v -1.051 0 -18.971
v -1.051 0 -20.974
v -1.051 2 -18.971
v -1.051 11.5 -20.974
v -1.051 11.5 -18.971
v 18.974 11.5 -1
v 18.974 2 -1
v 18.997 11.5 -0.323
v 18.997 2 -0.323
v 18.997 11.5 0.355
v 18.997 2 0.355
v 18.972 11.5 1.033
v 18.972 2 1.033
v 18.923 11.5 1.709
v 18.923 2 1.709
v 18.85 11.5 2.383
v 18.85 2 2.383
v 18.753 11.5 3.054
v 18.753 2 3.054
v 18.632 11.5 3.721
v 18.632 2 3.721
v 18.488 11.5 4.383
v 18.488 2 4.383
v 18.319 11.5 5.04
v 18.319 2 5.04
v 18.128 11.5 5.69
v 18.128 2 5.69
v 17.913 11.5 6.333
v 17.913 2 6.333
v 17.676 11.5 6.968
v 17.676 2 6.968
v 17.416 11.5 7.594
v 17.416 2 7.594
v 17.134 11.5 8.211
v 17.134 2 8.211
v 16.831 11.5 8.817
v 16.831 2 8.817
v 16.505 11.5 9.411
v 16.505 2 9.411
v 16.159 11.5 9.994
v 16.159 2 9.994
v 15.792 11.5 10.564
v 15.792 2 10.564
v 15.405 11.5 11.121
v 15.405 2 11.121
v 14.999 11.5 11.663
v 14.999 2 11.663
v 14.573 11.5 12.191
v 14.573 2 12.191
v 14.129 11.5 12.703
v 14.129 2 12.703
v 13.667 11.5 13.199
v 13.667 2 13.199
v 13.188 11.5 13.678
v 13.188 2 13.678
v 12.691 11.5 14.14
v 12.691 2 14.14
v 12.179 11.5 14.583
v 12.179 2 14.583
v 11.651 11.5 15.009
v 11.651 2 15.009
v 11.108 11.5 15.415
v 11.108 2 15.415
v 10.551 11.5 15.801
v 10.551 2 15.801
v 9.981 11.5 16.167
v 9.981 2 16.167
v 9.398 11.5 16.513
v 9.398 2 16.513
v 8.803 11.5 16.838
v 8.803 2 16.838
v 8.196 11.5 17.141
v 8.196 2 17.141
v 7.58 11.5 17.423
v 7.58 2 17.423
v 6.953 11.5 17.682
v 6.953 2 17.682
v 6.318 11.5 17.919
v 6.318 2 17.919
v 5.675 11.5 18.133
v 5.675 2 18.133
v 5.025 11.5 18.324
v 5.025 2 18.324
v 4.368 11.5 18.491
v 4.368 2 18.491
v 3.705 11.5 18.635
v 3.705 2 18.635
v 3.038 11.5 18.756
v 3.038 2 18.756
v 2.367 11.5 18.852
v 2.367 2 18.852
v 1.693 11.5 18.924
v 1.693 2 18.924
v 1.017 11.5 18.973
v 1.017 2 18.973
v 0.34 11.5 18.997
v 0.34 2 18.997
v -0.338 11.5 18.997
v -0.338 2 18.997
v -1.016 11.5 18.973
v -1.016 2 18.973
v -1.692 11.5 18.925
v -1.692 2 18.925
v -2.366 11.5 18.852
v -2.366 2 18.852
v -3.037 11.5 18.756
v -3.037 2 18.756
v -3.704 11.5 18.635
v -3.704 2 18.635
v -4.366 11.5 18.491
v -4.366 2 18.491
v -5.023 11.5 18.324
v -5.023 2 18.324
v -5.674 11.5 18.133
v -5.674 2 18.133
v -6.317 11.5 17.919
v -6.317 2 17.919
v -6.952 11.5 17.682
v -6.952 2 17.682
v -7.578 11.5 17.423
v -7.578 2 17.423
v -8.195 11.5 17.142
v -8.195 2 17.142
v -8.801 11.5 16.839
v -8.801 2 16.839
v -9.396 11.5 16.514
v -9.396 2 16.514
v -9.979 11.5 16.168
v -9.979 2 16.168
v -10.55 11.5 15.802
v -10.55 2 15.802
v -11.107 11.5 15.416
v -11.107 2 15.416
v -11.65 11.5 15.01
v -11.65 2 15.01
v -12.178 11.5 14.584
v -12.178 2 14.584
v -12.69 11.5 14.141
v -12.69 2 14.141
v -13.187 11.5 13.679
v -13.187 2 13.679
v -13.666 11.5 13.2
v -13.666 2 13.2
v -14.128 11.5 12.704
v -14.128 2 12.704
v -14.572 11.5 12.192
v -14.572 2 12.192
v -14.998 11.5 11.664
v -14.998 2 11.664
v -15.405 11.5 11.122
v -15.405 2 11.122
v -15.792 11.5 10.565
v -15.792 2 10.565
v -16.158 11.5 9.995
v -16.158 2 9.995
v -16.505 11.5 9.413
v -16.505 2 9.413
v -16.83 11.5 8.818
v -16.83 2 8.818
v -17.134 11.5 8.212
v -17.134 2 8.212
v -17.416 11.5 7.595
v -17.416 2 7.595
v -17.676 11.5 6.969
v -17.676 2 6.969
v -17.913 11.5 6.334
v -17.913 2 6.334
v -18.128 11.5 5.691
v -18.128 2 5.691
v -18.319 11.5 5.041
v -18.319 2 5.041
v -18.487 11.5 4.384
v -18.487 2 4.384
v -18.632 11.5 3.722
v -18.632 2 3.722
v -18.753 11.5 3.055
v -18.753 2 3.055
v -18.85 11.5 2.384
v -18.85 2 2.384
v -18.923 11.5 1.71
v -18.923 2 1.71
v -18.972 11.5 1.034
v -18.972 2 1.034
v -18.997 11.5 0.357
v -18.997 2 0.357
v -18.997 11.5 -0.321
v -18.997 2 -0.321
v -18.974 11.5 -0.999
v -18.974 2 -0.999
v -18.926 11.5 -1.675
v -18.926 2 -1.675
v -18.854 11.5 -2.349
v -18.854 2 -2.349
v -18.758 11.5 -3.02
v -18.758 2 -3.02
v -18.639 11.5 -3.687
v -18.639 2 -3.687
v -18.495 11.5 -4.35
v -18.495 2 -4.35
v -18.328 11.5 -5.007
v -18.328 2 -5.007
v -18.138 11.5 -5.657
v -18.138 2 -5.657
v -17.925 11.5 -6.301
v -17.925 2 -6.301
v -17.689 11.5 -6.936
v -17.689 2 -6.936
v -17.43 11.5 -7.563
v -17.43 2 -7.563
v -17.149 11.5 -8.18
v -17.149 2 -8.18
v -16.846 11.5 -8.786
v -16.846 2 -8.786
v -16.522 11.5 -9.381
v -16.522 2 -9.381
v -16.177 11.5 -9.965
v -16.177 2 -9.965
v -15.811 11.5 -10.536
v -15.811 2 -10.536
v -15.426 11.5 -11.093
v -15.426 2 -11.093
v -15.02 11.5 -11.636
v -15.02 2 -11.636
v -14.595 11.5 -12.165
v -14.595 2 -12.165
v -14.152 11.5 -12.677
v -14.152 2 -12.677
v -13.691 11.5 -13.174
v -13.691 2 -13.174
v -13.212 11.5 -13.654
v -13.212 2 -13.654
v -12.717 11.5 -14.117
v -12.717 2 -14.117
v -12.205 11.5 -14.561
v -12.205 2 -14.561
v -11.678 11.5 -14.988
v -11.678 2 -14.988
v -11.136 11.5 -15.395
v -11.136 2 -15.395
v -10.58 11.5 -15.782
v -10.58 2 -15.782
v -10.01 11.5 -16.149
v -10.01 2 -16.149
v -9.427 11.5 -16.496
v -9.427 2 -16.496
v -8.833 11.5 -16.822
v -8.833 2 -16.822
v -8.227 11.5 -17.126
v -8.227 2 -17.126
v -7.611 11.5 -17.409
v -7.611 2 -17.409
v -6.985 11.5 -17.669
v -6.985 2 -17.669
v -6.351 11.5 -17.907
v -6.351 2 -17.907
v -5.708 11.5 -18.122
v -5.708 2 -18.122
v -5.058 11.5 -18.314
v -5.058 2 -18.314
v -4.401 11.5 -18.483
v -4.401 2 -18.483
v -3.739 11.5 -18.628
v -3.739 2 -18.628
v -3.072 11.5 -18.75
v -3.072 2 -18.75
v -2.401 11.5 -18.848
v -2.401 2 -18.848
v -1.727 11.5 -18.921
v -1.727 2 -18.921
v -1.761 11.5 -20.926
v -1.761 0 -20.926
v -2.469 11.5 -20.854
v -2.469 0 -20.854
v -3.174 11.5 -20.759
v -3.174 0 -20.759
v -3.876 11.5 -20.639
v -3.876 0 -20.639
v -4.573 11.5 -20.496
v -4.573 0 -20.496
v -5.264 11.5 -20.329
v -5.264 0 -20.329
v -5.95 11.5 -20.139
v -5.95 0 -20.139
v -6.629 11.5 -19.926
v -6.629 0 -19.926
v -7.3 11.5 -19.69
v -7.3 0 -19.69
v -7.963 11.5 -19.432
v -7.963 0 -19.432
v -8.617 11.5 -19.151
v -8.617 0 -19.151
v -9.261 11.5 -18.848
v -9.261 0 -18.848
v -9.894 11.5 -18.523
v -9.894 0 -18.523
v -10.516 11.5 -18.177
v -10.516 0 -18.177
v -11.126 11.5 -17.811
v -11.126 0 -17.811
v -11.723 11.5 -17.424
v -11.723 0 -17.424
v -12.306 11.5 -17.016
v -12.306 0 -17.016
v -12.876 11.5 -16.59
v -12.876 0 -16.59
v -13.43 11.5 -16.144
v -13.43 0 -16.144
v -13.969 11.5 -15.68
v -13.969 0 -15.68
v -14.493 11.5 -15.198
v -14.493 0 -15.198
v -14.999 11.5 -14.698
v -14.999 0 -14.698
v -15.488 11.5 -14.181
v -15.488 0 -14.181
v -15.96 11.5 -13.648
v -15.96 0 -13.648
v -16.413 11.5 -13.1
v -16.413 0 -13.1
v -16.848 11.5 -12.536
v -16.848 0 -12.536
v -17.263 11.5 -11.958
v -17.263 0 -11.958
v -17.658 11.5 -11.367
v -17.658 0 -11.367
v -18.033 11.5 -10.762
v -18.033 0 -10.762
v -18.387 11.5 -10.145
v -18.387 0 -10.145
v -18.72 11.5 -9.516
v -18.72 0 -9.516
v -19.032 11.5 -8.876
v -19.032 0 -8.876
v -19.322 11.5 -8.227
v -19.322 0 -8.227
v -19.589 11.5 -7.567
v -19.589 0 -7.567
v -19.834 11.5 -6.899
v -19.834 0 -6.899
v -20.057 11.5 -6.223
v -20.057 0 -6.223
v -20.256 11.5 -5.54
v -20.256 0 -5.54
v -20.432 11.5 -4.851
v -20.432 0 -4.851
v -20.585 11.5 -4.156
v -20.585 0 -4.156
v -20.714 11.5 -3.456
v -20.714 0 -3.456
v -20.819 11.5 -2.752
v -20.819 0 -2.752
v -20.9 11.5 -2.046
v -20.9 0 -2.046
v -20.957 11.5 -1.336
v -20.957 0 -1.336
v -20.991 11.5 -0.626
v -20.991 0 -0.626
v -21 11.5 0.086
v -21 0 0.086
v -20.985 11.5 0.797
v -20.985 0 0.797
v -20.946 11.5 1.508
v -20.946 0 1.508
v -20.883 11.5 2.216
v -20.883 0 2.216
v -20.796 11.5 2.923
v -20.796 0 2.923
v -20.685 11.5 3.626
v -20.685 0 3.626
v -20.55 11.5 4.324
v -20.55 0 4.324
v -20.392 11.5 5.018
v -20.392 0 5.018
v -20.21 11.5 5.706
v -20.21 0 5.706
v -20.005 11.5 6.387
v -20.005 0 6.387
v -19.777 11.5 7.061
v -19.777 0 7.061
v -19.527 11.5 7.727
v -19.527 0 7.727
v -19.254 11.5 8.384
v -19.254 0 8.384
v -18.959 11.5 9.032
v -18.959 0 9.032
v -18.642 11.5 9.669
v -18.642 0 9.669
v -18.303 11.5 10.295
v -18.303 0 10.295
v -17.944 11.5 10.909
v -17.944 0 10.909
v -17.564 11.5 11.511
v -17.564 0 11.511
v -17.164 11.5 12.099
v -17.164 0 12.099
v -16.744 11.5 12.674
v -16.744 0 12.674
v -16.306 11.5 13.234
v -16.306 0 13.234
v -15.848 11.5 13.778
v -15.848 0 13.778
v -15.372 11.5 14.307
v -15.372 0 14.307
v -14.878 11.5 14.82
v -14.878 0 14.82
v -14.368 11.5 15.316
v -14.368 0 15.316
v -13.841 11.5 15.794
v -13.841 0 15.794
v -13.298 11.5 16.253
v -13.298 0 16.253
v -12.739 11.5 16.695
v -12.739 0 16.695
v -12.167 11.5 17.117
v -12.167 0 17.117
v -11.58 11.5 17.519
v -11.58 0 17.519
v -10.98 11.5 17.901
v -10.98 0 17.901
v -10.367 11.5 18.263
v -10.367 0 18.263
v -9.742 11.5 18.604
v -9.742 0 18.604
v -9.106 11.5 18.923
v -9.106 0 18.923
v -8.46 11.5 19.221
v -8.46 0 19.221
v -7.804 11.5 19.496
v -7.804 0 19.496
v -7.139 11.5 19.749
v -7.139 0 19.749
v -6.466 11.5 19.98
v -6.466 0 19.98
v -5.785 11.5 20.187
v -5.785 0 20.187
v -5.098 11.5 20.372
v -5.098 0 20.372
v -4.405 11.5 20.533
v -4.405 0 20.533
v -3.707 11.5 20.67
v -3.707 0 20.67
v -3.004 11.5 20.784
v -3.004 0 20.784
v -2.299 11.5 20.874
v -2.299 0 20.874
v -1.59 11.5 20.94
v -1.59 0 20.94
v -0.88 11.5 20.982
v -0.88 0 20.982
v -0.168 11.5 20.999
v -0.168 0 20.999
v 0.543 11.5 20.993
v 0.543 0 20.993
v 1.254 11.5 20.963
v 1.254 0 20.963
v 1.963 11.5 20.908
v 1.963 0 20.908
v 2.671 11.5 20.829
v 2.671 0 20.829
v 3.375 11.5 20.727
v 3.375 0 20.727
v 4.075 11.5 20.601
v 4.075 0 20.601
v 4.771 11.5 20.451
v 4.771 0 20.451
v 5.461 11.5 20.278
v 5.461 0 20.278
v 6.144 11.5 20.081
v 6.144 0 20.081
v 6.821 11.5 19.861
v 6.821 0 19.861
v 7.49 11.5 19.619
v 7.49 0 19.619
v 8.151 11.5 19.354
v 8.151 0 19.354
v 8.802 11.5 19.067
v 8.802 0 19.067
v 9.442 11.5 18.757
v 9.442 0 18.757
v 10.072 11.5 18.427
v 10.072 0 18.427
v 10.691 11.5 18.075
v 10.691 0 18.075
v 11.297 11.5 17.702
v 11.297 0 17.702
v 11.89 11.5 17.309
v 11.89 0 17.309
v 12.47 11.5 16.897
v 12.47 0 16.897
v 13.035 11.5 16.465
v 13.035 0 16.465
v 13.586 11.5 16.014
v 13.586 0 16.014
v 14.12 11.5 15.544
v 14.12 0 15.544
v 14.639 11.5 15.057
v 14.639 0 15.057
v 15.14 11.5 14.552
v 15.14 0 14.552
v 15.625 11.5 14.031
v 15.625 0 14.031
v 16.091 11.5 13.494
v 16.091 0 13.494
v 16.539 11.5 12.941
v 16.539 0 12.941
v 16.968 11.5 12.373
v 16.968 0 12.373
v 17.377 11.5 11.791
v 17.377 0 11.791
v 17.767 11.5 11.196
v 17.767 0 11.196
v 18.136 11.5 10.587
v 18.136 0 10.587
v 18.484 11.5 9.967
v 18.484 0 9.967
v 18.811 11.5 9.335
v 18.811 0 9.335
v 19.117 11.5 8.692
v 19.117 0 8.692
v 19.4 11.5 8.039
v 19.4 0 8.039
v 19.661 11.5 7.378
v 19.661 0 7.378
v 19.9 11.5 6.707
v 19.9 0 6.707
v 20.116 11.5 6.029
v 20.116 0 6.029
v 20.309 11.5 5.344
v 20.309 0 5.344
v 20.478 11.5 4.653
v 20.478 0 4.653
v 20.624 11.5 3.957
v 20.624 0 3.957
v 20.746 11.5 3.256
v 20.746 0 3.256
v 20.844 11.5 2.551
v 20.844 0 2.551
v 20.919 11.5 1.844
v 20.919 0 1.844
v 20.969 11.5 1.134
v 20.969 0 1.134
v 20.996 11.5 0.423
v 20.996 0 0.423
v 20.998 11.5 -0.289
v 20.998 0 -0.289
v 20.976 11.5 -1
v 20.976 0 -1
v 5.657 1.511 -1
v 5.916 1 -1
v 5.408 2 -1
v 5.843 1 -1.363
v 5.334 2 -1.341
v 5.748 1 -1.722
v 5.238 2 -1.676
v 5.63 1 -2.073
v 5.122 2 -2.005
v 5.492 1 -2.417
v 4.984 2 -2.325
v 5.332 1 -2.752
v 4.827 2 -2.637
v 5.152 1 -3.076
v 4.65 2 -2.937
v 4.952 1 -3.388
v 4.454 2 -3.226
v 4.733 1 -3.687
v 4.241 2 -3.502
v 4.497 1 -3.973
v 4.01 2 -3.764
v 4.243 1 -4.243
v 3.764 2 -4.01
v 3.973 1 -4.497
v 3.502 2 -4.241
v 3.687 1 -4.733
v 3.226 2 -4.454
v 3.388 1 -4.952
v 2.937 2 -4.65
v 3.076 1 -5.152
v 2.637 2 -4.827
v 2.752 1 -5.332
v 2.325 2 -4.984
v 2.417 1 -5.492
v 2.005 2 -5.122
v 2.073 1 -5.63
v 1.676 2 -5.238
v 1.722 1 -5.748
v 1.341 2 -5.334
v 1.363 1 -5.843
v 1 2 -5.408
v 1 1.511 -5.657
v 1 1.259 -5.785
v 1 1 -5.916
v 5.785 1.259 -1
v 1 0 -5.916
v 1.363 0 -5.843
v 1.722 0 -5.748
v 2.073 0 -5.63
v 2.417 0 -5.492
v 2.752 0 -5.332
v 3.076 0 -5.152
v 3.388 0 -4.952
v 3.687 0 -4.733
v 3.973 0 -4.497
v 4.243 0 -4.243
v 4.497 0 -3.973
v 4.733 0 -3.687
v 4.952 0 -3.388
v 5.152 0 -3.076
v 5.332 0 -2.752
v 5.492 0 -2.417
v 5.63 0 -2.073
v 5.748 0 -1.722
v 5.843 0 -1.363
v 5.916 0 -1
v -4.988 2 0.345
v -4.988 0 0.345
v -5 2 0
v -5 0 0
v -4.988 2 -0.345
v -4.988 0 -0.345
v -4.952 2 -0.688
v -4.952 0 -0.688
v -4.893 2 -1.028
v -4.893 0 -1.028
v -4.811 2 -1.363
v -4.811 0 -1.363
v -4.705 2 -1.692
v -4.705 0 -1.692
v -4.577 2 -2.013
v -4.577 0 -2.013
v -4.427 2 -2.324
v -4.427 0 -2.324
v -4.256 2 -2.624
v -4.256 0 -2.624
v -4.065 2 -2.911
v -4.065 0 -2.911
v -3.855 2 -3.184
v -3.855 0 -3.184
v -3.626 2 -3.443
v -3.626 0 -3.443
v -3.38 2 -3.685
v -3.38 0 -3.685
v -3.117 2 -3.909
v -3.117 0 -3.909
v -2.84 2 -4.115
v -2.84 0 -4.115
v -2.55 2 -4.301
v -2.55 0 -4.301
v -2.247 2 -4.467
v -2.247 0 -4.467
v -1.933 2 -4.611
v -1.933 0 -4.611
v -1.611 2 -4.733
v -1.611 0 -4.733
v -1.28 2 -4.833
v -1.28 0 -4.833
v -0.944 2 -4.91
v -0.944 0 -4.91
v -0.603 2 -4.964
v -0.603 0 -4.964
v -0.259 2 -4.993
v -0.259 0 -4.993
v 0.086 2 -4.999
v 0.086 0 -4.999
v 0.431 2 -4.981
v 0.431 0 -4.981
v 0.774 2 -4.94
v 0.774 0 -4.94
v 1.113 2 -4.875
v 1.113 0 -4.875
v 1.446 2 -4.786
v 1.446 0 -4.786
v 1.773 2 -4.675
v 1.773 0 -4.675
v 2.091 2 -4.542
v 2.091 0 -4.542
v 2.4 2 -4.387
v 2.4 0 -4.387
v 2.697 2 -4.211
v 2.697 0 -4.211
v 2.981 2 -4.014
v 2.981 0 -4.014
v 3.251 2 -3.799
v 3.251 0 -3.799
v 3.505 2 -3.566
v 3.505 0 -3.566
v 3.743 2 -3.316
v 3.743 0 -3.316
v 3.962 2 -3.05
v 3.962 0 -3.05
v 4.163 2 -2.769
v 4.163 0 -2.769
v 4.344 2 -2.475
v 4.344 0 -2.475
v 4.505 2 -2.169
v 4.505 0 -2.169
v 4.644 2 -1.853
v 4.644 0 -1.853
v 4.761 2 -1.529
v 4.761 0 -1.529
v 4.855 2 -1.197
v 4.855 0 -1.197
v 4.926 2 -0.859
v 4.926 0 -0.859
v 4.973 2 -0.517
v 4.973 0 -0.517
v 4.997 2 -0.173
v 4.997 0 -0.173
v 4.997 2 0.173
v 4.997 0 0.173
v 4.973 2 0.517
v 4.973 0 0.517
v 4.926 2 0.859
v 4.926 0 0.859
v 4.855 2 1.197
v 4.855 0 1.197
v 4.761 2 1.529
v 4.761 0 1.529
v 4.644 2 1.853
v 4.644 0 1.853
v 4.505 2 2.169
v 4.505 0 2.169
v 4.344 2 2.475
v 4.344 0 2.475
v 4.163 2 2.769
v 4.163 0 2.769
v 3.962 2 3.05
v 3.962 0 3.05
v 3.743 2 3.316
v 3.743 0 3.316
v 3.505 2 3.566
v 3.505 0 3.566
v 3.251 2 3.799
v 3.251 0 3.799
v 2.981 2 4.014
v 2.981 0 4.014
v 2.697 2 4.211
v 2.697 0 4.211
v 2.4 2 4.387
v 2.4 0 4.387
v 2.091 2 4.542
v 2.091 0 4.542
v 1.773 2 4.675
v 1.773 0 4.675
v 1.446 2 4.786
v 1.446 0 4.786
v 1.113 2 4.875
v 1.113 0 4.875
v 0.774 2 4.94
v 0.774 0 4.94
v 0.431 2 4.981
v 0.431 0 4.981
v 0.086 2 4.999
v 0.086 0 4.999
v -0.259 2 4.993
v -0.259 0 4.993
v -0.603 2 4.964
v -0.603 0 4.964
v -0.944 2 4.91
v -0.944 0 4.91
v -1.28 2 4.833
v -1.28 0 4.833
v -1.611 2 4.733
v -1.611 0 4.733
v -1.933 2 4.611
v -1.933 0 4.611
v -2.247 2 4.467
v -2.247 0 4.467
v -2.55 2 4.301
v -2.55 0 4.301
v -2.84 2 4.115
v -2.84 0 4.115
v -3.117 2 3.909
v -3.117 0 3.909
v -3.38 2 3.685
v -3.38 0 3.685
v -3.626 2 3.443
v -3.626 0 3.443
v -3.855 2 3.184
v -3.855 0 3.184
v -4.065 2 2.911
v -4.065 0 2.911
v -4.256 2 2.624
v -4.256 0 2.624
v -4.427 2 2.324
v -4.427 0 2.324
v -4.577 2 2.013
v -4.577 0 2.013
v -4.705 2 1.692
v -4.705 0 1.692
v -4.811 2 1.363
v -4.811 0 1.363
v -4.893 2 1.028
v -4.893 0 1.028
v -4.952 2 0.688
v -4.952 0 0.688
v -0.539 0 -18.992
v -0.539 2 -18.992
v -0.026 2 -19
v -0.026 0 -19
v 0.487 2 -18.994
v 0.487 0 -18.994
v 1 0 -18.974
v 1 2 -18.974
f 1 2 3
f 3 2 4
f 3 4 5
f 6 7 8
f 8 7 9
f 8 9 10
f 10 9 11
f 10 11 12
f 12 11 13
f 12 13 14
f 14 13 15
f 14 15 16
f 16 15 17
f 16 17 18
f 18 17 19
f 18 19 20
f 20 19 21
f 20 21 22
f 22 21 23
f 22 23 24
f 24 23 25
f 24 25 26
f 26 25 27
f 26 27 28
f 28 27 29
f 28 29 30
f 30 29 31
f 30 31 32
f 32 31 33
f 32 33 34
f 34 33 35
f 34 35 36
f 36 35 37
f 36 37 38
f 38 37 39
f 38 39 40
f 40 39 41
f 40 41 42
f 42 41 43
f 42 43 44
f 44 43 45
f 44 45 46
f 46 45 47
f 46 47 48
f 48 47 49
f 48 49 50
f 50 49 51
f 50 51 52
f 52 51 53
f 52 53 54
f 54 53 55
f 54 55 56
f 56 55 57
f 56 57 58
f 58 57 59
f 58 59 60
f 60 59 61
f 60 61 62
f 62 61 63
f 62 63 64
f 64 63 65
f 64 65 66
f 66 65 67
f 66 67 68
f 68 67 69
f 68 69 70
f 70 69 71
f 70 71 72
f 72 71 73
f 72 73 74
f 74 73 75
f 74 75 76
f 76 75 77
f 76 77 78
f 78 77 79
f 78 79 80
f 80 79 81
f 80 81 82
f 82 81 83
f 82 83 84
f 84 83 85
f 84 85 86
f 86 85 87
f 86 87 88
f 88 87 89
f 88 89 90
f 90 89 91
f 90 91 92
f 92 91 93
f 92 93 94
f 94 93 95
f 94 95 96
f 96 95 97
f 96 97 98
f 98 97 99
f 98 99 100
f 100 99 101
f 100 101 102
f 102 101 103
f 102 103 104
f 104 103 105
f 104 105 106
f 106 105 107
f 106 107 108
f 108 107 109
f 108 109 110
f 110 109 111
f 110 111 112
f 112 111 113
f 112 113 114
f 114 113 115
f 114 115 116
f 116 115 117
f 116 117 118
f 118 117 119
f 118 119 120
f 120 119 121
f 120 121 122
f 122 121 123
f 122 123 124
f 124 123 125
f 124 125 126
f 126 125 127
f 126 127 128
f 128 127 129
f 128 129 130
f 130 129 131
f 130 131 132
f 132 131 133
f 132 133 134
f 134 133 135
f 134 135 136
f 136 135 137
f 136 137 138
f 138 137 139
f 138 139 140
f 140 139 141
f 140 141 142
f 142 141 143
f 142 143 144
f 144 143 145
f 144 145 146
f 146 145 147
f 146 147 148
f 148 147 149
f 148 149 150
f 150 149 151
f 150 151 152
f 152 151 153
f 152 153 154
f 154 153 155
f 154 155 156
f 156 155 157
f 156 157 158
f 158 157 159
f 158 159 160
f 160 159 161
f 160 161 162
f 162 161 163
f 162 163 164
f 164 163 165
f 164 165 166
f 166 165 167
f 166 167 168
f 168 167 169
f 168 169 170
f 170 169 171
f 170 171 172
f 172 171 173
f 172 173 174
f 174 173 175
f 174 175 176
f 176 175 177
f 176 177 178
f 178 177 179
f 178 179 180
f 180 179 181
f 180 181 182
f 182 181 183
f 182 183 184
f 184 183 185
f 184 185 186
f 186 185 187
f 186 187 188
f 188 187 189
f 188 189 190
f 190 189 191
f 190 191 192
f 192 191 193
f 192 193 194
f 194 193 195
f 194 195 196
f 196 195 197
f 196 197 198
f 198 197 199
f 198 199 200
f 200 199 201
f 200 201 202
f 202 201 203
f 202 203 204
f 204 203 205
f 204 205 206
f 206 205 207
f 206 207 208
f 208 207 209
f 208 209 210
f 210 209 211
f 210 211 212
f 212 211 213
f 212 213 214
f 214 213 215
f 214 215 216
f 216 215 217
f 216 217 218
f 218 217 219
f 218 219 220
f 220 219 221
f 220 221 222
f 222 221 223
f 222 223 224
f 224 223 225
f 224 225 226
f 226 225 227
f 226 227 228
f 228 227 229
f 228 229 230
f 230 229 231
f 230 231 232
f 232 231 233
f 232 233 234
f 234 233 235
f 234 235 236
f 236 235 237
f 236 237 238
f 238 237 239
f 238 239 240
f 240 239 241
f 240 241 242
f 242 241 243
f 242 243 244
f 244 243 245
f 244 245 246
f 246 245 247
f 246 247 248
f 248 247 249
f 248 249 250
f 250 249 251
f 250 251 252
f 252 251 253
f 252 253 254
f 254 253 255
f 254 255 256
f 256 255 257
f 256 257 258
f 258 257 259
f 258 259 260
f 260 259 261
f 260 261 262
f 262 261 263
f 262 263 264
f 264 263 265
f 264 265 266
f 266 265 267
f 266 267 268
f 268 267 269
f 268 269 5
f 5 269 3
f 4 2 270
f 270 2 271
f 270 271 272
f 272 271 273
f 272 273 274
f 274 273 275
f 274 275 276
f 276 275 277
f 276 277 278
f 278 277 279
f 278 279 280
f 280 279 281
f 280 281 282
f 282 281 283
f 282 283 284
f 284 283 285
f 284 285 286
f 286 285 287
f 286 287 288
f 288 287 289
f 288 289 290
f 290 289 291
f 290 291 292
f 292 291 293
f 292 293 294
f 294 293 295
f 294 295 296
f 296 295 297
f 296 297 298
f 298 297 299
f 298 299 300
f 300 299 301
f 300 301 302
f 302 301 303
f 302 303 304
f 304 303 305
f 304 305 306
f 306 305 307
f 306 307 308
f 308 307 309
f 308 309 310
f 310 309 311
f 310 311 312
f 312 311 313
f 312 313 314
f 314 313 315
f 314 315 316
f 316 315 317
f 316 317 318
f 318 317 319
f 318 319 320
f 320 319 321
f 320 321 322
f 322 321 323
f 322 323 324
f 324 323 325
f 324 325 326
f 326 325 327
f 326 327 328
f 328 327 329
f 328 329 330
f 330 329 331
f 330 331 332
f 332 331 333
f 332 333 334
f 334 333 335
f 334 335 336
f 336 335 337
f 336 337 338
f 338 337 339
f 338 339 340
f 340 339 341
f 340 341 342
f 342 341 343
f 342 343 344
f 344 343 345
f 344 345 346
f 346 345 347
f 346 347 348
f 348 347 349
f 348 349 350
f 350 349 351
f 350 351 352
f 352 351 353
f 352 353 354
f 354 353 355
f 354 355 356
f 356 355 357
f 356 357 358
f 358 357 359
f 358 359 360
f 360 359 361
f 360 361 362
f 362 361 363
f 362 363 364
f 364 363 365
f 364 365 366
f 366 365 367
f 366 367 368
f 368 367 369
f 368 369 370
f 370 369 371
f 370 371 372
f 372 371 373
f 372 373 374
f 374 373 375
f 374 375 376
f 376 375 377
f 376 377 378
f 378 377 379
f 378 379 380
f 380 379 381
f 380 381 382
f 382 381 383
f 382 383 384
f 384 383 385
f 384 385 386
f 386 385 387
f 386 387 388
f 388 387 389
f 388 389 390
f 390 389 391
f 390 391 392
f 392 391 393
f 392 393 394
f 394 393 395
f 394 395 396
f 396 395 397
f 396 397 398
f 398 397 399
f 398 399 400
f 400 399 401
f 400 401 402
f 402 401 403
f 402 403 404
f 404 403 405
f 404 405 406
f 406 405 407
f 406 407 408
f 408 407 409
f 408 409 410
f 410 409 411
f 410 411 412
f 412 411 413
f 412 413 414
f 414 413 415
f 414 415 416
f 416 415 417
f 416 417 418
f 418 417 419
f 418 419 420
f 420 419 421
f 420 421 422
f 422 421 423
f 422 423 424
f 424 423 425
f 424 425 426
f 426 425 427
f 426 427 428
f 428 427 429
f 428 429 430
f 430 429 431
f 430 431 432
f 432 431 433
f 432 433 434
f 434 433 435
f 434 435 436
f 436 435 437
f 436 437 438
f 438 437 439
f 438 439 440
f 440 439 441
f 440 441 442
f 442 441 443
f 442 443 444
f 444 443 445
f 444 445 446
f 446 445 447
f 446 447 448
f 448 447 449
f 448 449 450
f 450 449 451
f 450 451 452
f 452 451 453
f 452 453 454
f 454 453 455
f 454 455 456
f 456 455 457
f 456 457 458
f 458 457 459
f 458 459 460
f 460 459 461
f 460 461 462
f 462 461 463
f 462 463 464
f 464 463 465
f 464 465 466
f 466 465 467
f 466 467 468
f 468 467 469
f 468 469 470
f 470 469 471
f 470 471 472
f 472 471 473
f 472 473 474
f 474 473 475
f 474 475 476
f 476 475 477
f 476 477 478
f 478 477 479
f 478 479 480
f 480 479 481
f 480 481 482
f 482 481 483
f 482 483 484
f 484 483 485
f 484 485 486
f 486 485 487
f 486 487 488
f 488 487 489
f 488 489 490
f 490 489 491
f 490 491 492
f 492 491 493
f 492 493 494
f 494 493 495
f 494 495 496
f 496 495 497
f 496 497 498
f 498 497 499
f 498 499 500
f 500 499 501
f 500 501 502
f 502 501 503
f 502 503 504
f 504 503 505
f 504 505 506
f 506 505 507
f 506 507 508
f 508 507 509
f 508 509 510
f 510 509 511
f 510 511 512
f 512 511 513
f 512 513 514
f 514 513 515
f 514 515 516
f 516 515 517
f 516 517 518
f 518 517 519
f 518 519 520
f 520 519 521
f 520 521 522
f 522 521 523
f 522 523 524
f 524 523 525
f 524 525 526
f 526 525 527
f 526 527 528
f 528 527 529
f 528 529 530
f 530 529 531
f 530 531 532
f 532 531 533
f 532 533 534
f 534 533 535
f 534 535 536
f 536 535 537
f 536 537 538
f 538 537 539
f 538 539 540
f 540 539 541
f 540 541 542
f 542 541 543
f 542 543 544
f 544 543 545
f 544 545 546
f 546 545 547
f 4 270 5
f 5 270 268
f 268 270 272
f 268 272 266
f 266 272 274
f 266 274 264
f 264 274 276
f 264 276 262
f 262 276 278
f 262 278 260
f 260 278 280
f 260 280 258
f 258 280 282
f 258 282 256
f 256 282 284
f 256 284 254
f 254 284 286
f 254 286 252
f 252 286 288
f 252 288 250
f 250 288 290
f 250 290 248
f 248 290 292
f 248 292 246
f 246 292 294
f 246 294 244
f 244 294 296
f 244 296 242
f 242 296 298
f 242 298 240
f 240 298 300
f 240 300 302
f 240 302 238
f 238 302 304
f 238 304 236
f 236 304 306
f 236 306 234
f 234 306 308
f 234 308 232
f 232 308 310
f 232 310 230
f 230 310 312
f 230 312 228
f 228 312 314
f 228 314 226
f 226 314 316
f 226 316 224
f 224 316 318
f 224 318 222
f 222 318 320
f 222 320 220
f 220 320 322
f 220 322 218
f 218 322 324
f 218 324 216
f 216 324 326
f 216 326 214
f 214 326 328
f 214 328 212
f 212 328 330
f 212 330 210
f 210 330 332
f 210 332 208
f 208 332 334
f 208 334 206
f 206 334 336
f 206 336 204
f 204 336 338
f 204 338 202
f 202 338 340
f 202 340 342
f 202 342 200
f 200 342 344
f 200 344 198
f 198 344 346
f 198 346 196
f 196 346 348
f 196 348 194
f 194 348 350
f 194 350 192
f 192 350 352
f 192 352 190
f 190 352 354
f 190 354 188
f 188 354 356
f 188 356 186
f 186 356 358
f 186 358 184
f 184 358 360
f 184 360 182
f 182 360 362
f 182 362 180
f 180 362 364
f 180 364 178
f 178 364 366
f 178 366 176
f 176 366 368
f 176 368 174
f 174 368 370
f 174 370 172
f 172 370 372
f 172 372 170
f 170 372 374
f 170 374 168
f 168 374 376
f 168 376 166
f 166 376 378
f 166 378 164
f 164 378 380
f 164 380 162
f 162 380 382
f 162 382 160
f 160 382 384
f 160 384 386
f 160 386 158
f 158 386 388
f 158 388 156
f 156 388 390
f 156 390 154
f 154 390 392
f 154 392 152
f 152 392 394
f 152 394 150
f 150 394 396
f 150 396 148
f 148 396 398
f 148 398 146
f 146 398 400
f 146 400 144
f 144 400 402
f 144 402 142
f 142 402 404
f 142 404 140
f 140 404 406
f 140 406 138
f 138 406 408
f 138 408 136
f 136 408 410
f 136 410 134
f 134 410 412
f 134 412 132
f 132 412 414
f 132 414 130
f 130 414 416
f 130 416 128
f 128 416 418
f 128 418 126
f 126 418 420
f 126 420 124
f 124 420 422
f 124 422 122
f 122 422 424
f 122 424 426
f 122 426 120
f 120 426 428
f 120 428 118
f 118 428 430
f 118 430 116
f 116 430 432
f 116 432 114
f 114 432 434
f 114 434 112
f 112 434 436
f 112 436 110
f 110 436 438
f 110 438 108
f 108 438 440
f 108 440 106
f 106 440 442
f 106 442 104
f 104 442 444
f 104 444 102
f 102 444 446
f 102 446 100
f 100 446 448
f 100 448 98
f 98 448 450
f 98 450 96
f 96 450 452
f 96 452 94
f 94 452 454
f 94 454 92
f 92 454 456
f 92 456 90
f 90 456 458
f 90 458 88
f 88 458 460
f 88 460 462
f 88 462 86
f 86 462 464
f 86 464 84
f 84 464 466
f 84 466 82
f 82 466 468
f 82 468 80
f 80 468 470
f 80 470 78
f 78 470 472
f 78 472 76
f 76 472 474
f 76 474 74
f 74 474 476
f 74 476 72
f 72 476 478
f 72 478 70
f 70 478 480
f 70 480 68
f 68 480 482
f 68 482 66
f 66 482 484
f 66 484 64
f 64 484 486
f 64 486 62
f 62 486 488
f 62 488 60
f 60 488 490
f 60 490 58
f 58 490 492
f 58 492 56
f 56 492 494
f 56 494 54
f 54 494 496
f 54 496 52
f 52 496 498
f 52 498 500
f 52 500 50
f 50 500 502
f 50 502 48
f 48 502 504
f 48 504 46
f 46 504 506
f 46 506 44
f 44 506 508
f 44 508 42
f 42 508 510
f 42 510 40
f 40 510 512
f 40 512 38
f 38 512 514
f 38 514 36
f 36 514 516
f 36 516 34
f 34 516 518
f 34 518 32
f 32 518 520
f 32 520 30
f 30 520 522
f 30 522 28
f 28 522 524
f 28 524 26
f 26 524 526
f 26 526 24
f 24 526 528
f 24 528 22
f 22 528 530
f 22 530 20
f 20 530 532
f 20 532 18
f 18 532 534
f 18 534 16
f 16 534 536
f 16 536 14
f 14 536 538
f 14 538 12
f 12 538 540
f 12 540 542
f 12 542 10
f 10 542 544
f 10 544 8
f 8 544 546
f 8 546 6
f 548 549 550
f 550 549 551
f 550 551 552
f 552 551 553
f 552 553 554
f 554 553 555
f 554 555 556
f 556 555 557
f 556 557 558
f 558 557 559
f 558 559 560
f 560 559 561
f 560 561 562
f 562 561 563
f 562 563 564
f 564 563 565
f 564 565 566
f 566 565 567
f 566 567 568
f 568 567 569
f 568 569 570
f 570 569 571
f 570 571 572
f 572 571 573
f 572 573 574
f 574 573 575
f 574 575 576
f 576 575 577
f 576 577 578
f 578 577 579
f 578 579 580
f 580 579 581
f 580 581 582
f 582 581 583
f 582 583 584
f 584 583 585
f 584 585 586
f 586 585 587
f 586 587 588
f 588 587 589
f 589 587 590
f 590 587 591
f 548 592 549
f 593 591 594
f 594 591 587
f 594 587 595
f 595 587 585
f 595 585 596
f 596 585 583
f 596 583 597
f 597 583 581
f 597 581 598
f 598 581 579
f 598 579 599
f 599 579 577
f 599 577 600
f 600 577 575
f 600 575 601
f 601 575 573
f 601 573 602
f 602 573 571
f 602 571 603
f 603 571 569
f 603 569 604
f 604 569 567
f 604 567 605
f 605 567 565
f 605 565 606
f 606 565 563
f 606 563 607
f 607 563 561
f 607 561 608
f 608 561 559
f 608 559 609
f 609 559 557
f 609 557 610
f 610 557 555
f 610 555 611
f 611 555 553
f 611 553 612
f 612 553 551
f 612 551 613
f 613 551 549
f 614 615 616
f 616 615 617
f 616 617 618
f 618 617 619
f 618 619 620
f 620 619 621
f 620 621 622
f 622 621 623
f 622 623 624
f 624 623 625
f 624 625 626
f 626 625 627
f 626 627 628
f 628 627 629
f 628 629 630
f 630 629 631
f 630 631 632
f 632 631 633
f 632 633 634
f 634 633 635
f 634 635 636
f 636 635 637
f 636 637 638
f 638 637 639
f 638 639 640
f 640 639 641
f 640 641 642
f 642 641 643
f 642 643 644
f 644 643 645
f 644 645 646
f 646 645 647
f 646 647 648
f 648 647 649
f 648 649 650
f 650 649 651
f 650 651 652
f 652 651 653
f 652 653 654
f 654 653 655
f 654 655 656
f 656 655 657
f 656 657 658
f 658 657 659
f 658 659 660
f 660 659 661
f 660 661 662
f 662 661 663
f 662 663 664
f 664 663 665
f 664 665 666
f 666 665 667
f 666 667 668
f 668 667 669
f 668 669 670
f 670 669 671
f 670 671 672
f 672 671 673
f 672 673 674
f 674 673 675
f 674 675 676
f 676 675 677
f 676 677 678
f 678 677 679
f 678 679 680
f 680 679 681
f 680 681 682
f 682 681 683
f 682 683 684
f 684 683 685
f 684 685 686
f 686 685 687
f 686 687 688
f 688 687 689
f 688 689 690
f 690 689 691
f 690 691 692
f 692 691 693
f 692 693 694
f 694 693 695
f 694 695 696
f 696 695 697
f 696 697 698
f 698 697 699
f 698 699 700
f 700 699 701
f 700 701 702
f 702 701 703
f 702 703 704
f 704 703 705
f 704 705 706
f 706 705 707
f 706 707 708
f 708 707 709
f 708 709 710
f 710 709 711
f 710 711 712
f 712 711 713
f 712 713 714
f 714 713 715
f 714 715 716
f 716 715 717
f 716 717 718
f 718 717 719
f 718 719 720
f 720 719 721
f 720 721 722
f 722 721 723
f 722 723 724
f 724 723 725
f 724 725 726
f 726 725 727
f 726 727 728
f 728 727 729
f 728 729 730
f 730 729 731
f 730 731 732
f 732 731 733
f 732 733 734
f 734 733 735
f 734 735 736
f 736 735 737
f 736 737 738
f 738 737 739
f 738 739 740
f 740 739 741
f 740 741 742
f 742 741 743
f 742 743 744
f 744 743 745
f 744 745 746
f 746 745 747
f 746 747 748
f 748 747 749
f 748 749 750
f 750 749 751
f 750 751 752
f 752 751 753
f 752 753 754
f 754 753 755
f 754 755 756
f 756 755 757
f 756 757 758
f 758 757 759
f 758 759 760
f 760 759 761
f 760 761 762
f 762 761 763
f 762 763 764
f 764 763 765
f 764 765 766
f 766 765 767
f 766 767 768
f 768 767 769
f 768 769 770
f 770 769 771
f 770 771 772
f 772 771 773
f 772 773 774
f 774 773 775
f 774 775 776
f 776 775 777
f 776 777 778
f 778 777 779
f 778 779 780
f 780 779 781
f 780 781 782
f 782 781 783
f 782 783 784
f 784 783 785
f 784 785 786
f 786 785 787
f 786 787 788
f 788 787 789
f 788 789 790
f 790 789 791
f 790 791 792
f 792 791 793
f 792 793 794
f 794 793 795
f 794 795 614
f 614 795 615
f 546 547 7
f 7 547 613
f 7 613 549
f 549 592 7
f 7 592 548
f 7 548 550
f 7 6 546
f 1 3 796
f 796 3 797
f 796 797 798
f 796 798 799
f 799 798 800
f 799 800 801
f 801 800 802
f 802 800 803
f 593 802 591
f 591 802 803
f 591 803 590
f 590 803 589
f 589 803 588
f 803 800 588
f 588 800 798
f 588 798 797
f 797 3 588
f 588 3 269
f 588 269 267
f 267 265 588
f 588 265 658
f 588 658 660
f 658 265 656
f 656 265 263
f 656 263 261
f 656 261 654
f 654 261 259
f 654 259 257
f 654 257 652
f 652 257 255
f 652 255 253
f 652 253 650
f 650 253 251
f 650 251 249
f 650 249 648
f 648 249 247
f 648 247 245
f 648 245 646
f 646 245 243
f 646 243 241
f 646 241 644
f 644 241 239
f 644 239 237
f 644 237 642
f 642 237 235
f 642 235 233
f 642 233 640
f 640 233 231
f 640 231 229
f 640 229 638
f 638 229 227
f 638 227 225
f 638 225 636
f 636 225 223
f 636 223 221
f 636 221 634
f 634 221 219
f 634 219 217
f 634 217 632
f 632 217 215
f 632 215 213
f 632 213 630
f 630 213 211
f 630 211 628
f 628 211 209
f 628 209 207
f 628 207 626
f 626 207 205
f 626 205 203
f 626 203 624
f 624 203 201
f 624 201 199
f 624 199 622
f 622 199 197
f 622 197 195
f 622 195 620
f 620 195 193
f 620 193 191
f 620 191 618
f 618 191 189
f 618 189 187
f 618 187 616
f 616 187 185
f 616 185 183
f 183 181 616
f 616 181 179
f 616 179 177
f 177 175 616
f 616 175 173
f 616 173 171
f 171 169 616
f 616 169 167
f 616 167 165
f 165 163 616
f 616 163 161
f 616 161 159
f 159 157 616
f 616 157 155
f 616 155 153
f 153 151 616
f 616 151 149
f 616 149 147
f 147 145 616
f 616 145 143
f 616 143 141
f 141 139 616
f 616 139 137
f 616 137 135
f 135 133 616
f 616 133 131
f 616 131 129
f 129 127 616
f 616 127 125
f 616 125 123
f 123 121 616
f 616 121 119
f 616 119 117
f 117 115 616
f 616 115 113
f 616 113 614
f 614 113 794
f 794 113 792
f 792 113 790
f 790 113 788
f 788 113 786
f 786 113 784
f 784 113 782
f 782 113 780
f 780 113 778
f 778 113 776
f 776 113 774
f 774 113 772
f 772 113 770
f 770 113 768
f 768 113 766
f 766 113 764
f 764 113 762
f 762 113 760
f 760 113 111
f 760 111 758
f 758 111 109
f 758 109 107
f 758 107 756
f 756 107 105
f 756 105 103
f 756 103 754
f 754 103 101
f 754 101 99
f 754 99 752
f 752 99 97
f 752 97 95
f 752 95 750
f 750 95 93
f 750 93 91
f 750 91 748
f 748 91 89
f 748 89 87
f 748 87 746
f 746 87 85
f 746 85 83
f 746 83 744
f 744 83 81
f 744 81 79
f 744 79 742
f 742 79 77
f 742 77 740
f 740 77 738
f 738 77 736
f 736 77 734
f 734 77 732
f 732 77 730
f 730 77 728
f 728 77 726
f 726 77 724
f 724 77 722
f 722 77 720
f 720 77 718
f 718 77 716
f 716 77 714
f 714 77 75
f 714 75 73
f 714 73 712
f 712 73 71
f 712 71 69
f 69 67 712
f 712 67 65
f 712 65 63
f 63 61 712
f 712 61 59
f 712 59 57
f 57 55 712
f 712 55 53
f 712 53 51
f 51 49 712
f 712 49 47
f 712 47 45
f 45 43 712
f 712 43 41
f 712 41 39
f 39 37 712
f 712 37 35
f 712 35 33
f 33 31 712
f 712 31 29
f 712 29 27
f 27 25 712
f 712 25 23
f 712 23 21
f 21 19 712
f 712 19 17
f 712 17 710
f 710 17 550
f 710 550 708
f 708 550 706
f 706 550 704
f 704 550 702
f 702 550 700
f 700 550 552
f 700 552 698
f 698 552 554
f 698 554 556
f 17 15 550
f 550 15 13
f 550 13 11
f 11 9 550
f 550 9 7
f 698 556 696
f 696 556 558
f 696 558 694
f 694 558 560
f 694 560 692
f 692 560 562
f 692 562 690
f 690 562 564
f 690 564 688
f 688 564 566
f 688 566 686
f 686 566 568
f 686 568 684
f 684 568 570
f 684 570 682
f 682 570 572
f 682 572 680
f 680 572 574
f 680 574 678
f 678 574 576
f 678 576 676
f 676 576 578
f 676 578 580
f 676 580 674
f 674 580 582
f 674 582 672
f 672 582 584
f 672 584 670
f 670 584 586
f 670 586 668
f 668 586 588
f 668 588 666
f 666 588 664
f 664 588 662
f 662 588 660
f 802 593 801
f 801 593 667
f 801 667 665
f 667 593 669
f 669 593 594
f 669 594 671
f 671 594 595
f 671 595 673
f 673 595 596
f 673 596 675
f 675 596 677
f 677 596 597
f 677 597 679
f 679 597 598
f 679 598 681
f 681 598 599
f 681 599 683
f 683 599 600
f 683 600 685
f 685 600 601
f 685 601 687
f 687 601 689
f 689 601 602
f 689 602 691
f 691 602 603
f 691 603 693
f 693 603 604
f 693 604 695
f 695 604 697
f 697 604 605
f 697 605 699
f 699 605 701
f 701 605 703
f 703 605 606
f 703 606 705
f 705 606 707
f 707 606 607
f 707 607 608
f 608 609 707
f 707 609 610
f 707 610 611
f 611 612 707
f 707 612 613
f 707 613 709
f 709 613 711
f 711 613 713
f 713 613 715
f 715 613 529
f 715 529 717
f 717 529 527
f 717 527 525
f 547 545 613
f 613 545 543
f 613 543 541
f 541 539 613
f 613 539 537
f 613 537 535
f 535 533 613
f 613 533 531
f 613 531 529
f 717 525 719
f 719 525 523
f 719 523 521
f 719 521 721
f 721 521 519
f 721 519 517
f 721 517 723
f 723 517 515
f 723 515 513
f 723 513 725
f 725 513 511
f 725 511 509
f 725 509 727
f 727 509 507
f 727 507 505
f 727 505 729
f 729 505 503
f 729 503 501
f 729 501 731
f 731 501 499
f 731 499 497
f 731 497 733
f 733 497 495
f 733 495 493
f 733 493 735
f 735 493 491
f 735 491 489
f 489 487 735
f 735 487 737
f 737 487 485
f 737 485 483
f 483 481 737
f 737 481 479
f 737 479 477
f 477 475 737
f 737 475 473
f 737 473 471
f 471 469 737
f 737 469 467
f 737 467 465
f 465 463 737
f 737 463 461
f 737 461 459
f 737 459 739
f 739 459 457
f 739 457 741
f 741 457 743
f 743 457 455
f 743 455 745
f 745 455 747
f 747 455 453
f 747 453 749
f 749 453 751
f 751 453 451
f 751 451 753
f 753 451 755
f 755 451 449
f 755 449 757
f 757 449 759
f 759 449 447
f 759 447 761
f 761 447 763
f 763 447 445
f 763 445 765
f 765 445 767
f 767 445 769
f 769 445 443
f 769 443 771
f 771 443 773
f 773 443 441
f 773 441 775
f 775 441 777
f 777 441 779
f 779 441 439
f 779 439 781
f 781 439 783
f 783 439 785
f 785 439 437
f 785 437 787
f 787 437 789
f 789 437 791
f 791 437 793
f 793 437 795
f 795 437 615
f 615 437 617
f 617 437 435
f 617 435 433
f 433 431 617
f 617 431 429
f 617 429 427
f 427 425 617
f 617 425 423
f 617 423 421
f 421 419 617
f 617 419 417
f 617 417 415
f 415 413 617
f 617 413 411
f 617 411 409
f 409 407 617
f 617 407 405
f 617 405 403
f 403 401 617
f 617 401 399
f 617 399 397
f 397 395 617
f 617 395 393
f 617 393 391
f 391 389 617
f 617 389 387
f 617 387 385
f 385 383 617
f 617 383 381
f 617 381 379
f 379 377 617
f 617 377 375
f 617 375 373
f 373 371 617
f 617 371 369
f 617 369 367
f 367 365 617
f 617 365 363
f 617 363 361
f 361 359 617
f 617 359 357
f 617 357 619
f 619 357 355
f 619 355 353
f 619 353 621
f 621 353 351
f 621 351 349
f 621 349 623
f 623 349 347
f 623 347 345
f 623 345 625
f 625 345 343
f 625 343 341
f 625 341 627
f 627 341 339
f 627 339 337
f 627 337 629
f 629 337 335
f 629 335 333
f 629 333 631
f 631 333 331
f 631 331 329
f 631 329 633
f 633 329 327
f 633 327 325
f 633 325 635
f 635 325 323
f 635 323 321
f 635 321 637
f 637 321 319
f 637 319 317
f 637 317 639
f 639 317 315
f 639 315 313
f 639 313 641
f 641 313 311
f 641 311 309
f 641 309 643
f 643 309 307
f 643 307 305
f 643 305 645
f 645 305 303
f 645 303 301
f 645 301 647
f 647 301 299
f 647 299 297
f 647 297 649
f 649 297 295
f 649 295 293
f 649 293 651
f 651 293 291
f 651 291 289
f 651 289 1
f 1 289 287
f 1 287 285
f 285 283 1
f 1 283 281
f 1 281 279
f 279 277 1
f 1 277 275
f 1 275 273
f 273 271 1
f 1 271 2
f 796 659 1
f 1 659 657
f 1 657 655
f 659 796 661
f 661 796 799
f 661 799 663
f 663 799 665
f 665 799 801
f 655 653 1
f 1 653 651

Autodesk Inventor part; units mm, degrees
ref_plane "YZ Plane" through (0, 0, 0) normal (1, 0, 0) x (0, 1, 0)
ref_plane "XZ Plane" through (0, 0, 0) normal (0, 1, 0) x (-1, 0, 0)
ref_plane "XY Plane" through (0, 0, 0) normal (0, 0, 1) x (1, 0, 0)
sketch "Sketch9" plane through (0, 0, 0) normal (0, 1, 0) x (-1, 0, 0)
  line L0 (21, 0) -> (-21, 0) construction
  line L1 (0, 21) -> (0, -21) construction
  line L2 (21, -1) -> (20.9762, -1)
  line L3 (21, 1) -> (20.9762, 1)
  line L4 (-20.9762, 1) -> (-21, 1)
  line L5 (1, 21) -> (1, 20.9762)
  line L6 (1, -20.9762) -> (1, -21)
  line L7 (-1, 21) -> (-1, 20.9762)
  line L8 (-1, -5.9161) -> (-1, -21)
  line L9 (-5.9161, -1) -> (-18.9762, -1)
  circle A0 centre (0, 0) radius 5
  arc A1 (-5.9161, -1) -> (-1, -5.9161) centre (0, 0) ccw
  line L10 (-20.9762, -1) -> (-18.9762, -1)
  line L11 (1, -21) -> (1, -3.873) construction
  line L12 (-3.873, 1) -> (-18.9762, 1) construction
  line L13 (-18.9762, 1) -> (-20.9762, 1) construction
  line L14 (-3.873, 1) -> (20.9762, 1) construction
  line L15 (-5.9161, -1) -> (20.9762, -1) construction
  line L16 (1, -3.873) -> (1, 20.9762) construction
  line L17 (-1, -5.9161) -> (-1, 20.9762) construction
  line L18 (0, 21) -> (0, 19) construction
  line L19 (0, 19) -> (1, 19) construction
  arc A2 (-1, -20.9762) -> (0, 21) centre (0, 0) ccw construction
  arc A3 (20.9762, 1) -> (-20.9762, -1) centre (0, 0) ccw construction
  arc A4 (-1, -18.9737) -> (-18.9737, -1) centre (0, 0) ccw
  line L20 (-1, 19) -> (1, 19)
  point P0 (-4.899, -1)
  point P1 (-1, -4.899)
  dimension "d35" = 10
  dimension "d50" = 2
  dimension "d53" = 38
extrude "Extrusion5" add sketch "Sketch9" along normal blind 2
chamfer "Chamfer1" distance 0.5 distance2 1 1 edges at (4.2426, 2, -4.2426) measured on face at (13.5988, 2, 4.219)
sketch "Sketch12" plane through (0, 0, 0) normal (0, 1, 0) x (-1, 0, 0)
  arc A0 (1.0513, -20.9737) -> (-20.9762, -1) centre (0, 0) ccw
  circle A1 centre (0, 0) radius 5 projected
  arc A2 (1, -18.9737) -> (-18.9737, -1) centre (0, 0) ccw
  line L0 (-18.9737, -1) -> (-5.4083, -1) projected
  line L1 (-18.9737, -1) -> (-20.9762, -1)
  line L2 (-1, -5.4083) -> (-1, -18.9737) projected
  line L3 (0.0513, 20.9999) -> (0.0513, -20.9999) construction
  line L4 (1.0513, 21.0025) -> (1.0513, -20.9975) construction
  line L5 (1.0513, -20.9737) -> (1.0513, -18.9737)
  arc A3 (-1, -18.9737) -> (-18.9737, -1) centre (0, 0) ccw projected
  line L6 (1.0513, -18.9737) -> (-1, -18.9737)
  line L7 (1.0513, -18.9737) -> (1.0513, -18.9709)
  dimension "d58" = 42
  dimension "d60" = 19
  dimension "d63" = 1
  dimension "d64" = 2
extrude "Extrusion8" add sketch "Sketch12" along normal blind 11.5 contours L5 L7 A2 L1 A0
properties part number "base layer 4"
